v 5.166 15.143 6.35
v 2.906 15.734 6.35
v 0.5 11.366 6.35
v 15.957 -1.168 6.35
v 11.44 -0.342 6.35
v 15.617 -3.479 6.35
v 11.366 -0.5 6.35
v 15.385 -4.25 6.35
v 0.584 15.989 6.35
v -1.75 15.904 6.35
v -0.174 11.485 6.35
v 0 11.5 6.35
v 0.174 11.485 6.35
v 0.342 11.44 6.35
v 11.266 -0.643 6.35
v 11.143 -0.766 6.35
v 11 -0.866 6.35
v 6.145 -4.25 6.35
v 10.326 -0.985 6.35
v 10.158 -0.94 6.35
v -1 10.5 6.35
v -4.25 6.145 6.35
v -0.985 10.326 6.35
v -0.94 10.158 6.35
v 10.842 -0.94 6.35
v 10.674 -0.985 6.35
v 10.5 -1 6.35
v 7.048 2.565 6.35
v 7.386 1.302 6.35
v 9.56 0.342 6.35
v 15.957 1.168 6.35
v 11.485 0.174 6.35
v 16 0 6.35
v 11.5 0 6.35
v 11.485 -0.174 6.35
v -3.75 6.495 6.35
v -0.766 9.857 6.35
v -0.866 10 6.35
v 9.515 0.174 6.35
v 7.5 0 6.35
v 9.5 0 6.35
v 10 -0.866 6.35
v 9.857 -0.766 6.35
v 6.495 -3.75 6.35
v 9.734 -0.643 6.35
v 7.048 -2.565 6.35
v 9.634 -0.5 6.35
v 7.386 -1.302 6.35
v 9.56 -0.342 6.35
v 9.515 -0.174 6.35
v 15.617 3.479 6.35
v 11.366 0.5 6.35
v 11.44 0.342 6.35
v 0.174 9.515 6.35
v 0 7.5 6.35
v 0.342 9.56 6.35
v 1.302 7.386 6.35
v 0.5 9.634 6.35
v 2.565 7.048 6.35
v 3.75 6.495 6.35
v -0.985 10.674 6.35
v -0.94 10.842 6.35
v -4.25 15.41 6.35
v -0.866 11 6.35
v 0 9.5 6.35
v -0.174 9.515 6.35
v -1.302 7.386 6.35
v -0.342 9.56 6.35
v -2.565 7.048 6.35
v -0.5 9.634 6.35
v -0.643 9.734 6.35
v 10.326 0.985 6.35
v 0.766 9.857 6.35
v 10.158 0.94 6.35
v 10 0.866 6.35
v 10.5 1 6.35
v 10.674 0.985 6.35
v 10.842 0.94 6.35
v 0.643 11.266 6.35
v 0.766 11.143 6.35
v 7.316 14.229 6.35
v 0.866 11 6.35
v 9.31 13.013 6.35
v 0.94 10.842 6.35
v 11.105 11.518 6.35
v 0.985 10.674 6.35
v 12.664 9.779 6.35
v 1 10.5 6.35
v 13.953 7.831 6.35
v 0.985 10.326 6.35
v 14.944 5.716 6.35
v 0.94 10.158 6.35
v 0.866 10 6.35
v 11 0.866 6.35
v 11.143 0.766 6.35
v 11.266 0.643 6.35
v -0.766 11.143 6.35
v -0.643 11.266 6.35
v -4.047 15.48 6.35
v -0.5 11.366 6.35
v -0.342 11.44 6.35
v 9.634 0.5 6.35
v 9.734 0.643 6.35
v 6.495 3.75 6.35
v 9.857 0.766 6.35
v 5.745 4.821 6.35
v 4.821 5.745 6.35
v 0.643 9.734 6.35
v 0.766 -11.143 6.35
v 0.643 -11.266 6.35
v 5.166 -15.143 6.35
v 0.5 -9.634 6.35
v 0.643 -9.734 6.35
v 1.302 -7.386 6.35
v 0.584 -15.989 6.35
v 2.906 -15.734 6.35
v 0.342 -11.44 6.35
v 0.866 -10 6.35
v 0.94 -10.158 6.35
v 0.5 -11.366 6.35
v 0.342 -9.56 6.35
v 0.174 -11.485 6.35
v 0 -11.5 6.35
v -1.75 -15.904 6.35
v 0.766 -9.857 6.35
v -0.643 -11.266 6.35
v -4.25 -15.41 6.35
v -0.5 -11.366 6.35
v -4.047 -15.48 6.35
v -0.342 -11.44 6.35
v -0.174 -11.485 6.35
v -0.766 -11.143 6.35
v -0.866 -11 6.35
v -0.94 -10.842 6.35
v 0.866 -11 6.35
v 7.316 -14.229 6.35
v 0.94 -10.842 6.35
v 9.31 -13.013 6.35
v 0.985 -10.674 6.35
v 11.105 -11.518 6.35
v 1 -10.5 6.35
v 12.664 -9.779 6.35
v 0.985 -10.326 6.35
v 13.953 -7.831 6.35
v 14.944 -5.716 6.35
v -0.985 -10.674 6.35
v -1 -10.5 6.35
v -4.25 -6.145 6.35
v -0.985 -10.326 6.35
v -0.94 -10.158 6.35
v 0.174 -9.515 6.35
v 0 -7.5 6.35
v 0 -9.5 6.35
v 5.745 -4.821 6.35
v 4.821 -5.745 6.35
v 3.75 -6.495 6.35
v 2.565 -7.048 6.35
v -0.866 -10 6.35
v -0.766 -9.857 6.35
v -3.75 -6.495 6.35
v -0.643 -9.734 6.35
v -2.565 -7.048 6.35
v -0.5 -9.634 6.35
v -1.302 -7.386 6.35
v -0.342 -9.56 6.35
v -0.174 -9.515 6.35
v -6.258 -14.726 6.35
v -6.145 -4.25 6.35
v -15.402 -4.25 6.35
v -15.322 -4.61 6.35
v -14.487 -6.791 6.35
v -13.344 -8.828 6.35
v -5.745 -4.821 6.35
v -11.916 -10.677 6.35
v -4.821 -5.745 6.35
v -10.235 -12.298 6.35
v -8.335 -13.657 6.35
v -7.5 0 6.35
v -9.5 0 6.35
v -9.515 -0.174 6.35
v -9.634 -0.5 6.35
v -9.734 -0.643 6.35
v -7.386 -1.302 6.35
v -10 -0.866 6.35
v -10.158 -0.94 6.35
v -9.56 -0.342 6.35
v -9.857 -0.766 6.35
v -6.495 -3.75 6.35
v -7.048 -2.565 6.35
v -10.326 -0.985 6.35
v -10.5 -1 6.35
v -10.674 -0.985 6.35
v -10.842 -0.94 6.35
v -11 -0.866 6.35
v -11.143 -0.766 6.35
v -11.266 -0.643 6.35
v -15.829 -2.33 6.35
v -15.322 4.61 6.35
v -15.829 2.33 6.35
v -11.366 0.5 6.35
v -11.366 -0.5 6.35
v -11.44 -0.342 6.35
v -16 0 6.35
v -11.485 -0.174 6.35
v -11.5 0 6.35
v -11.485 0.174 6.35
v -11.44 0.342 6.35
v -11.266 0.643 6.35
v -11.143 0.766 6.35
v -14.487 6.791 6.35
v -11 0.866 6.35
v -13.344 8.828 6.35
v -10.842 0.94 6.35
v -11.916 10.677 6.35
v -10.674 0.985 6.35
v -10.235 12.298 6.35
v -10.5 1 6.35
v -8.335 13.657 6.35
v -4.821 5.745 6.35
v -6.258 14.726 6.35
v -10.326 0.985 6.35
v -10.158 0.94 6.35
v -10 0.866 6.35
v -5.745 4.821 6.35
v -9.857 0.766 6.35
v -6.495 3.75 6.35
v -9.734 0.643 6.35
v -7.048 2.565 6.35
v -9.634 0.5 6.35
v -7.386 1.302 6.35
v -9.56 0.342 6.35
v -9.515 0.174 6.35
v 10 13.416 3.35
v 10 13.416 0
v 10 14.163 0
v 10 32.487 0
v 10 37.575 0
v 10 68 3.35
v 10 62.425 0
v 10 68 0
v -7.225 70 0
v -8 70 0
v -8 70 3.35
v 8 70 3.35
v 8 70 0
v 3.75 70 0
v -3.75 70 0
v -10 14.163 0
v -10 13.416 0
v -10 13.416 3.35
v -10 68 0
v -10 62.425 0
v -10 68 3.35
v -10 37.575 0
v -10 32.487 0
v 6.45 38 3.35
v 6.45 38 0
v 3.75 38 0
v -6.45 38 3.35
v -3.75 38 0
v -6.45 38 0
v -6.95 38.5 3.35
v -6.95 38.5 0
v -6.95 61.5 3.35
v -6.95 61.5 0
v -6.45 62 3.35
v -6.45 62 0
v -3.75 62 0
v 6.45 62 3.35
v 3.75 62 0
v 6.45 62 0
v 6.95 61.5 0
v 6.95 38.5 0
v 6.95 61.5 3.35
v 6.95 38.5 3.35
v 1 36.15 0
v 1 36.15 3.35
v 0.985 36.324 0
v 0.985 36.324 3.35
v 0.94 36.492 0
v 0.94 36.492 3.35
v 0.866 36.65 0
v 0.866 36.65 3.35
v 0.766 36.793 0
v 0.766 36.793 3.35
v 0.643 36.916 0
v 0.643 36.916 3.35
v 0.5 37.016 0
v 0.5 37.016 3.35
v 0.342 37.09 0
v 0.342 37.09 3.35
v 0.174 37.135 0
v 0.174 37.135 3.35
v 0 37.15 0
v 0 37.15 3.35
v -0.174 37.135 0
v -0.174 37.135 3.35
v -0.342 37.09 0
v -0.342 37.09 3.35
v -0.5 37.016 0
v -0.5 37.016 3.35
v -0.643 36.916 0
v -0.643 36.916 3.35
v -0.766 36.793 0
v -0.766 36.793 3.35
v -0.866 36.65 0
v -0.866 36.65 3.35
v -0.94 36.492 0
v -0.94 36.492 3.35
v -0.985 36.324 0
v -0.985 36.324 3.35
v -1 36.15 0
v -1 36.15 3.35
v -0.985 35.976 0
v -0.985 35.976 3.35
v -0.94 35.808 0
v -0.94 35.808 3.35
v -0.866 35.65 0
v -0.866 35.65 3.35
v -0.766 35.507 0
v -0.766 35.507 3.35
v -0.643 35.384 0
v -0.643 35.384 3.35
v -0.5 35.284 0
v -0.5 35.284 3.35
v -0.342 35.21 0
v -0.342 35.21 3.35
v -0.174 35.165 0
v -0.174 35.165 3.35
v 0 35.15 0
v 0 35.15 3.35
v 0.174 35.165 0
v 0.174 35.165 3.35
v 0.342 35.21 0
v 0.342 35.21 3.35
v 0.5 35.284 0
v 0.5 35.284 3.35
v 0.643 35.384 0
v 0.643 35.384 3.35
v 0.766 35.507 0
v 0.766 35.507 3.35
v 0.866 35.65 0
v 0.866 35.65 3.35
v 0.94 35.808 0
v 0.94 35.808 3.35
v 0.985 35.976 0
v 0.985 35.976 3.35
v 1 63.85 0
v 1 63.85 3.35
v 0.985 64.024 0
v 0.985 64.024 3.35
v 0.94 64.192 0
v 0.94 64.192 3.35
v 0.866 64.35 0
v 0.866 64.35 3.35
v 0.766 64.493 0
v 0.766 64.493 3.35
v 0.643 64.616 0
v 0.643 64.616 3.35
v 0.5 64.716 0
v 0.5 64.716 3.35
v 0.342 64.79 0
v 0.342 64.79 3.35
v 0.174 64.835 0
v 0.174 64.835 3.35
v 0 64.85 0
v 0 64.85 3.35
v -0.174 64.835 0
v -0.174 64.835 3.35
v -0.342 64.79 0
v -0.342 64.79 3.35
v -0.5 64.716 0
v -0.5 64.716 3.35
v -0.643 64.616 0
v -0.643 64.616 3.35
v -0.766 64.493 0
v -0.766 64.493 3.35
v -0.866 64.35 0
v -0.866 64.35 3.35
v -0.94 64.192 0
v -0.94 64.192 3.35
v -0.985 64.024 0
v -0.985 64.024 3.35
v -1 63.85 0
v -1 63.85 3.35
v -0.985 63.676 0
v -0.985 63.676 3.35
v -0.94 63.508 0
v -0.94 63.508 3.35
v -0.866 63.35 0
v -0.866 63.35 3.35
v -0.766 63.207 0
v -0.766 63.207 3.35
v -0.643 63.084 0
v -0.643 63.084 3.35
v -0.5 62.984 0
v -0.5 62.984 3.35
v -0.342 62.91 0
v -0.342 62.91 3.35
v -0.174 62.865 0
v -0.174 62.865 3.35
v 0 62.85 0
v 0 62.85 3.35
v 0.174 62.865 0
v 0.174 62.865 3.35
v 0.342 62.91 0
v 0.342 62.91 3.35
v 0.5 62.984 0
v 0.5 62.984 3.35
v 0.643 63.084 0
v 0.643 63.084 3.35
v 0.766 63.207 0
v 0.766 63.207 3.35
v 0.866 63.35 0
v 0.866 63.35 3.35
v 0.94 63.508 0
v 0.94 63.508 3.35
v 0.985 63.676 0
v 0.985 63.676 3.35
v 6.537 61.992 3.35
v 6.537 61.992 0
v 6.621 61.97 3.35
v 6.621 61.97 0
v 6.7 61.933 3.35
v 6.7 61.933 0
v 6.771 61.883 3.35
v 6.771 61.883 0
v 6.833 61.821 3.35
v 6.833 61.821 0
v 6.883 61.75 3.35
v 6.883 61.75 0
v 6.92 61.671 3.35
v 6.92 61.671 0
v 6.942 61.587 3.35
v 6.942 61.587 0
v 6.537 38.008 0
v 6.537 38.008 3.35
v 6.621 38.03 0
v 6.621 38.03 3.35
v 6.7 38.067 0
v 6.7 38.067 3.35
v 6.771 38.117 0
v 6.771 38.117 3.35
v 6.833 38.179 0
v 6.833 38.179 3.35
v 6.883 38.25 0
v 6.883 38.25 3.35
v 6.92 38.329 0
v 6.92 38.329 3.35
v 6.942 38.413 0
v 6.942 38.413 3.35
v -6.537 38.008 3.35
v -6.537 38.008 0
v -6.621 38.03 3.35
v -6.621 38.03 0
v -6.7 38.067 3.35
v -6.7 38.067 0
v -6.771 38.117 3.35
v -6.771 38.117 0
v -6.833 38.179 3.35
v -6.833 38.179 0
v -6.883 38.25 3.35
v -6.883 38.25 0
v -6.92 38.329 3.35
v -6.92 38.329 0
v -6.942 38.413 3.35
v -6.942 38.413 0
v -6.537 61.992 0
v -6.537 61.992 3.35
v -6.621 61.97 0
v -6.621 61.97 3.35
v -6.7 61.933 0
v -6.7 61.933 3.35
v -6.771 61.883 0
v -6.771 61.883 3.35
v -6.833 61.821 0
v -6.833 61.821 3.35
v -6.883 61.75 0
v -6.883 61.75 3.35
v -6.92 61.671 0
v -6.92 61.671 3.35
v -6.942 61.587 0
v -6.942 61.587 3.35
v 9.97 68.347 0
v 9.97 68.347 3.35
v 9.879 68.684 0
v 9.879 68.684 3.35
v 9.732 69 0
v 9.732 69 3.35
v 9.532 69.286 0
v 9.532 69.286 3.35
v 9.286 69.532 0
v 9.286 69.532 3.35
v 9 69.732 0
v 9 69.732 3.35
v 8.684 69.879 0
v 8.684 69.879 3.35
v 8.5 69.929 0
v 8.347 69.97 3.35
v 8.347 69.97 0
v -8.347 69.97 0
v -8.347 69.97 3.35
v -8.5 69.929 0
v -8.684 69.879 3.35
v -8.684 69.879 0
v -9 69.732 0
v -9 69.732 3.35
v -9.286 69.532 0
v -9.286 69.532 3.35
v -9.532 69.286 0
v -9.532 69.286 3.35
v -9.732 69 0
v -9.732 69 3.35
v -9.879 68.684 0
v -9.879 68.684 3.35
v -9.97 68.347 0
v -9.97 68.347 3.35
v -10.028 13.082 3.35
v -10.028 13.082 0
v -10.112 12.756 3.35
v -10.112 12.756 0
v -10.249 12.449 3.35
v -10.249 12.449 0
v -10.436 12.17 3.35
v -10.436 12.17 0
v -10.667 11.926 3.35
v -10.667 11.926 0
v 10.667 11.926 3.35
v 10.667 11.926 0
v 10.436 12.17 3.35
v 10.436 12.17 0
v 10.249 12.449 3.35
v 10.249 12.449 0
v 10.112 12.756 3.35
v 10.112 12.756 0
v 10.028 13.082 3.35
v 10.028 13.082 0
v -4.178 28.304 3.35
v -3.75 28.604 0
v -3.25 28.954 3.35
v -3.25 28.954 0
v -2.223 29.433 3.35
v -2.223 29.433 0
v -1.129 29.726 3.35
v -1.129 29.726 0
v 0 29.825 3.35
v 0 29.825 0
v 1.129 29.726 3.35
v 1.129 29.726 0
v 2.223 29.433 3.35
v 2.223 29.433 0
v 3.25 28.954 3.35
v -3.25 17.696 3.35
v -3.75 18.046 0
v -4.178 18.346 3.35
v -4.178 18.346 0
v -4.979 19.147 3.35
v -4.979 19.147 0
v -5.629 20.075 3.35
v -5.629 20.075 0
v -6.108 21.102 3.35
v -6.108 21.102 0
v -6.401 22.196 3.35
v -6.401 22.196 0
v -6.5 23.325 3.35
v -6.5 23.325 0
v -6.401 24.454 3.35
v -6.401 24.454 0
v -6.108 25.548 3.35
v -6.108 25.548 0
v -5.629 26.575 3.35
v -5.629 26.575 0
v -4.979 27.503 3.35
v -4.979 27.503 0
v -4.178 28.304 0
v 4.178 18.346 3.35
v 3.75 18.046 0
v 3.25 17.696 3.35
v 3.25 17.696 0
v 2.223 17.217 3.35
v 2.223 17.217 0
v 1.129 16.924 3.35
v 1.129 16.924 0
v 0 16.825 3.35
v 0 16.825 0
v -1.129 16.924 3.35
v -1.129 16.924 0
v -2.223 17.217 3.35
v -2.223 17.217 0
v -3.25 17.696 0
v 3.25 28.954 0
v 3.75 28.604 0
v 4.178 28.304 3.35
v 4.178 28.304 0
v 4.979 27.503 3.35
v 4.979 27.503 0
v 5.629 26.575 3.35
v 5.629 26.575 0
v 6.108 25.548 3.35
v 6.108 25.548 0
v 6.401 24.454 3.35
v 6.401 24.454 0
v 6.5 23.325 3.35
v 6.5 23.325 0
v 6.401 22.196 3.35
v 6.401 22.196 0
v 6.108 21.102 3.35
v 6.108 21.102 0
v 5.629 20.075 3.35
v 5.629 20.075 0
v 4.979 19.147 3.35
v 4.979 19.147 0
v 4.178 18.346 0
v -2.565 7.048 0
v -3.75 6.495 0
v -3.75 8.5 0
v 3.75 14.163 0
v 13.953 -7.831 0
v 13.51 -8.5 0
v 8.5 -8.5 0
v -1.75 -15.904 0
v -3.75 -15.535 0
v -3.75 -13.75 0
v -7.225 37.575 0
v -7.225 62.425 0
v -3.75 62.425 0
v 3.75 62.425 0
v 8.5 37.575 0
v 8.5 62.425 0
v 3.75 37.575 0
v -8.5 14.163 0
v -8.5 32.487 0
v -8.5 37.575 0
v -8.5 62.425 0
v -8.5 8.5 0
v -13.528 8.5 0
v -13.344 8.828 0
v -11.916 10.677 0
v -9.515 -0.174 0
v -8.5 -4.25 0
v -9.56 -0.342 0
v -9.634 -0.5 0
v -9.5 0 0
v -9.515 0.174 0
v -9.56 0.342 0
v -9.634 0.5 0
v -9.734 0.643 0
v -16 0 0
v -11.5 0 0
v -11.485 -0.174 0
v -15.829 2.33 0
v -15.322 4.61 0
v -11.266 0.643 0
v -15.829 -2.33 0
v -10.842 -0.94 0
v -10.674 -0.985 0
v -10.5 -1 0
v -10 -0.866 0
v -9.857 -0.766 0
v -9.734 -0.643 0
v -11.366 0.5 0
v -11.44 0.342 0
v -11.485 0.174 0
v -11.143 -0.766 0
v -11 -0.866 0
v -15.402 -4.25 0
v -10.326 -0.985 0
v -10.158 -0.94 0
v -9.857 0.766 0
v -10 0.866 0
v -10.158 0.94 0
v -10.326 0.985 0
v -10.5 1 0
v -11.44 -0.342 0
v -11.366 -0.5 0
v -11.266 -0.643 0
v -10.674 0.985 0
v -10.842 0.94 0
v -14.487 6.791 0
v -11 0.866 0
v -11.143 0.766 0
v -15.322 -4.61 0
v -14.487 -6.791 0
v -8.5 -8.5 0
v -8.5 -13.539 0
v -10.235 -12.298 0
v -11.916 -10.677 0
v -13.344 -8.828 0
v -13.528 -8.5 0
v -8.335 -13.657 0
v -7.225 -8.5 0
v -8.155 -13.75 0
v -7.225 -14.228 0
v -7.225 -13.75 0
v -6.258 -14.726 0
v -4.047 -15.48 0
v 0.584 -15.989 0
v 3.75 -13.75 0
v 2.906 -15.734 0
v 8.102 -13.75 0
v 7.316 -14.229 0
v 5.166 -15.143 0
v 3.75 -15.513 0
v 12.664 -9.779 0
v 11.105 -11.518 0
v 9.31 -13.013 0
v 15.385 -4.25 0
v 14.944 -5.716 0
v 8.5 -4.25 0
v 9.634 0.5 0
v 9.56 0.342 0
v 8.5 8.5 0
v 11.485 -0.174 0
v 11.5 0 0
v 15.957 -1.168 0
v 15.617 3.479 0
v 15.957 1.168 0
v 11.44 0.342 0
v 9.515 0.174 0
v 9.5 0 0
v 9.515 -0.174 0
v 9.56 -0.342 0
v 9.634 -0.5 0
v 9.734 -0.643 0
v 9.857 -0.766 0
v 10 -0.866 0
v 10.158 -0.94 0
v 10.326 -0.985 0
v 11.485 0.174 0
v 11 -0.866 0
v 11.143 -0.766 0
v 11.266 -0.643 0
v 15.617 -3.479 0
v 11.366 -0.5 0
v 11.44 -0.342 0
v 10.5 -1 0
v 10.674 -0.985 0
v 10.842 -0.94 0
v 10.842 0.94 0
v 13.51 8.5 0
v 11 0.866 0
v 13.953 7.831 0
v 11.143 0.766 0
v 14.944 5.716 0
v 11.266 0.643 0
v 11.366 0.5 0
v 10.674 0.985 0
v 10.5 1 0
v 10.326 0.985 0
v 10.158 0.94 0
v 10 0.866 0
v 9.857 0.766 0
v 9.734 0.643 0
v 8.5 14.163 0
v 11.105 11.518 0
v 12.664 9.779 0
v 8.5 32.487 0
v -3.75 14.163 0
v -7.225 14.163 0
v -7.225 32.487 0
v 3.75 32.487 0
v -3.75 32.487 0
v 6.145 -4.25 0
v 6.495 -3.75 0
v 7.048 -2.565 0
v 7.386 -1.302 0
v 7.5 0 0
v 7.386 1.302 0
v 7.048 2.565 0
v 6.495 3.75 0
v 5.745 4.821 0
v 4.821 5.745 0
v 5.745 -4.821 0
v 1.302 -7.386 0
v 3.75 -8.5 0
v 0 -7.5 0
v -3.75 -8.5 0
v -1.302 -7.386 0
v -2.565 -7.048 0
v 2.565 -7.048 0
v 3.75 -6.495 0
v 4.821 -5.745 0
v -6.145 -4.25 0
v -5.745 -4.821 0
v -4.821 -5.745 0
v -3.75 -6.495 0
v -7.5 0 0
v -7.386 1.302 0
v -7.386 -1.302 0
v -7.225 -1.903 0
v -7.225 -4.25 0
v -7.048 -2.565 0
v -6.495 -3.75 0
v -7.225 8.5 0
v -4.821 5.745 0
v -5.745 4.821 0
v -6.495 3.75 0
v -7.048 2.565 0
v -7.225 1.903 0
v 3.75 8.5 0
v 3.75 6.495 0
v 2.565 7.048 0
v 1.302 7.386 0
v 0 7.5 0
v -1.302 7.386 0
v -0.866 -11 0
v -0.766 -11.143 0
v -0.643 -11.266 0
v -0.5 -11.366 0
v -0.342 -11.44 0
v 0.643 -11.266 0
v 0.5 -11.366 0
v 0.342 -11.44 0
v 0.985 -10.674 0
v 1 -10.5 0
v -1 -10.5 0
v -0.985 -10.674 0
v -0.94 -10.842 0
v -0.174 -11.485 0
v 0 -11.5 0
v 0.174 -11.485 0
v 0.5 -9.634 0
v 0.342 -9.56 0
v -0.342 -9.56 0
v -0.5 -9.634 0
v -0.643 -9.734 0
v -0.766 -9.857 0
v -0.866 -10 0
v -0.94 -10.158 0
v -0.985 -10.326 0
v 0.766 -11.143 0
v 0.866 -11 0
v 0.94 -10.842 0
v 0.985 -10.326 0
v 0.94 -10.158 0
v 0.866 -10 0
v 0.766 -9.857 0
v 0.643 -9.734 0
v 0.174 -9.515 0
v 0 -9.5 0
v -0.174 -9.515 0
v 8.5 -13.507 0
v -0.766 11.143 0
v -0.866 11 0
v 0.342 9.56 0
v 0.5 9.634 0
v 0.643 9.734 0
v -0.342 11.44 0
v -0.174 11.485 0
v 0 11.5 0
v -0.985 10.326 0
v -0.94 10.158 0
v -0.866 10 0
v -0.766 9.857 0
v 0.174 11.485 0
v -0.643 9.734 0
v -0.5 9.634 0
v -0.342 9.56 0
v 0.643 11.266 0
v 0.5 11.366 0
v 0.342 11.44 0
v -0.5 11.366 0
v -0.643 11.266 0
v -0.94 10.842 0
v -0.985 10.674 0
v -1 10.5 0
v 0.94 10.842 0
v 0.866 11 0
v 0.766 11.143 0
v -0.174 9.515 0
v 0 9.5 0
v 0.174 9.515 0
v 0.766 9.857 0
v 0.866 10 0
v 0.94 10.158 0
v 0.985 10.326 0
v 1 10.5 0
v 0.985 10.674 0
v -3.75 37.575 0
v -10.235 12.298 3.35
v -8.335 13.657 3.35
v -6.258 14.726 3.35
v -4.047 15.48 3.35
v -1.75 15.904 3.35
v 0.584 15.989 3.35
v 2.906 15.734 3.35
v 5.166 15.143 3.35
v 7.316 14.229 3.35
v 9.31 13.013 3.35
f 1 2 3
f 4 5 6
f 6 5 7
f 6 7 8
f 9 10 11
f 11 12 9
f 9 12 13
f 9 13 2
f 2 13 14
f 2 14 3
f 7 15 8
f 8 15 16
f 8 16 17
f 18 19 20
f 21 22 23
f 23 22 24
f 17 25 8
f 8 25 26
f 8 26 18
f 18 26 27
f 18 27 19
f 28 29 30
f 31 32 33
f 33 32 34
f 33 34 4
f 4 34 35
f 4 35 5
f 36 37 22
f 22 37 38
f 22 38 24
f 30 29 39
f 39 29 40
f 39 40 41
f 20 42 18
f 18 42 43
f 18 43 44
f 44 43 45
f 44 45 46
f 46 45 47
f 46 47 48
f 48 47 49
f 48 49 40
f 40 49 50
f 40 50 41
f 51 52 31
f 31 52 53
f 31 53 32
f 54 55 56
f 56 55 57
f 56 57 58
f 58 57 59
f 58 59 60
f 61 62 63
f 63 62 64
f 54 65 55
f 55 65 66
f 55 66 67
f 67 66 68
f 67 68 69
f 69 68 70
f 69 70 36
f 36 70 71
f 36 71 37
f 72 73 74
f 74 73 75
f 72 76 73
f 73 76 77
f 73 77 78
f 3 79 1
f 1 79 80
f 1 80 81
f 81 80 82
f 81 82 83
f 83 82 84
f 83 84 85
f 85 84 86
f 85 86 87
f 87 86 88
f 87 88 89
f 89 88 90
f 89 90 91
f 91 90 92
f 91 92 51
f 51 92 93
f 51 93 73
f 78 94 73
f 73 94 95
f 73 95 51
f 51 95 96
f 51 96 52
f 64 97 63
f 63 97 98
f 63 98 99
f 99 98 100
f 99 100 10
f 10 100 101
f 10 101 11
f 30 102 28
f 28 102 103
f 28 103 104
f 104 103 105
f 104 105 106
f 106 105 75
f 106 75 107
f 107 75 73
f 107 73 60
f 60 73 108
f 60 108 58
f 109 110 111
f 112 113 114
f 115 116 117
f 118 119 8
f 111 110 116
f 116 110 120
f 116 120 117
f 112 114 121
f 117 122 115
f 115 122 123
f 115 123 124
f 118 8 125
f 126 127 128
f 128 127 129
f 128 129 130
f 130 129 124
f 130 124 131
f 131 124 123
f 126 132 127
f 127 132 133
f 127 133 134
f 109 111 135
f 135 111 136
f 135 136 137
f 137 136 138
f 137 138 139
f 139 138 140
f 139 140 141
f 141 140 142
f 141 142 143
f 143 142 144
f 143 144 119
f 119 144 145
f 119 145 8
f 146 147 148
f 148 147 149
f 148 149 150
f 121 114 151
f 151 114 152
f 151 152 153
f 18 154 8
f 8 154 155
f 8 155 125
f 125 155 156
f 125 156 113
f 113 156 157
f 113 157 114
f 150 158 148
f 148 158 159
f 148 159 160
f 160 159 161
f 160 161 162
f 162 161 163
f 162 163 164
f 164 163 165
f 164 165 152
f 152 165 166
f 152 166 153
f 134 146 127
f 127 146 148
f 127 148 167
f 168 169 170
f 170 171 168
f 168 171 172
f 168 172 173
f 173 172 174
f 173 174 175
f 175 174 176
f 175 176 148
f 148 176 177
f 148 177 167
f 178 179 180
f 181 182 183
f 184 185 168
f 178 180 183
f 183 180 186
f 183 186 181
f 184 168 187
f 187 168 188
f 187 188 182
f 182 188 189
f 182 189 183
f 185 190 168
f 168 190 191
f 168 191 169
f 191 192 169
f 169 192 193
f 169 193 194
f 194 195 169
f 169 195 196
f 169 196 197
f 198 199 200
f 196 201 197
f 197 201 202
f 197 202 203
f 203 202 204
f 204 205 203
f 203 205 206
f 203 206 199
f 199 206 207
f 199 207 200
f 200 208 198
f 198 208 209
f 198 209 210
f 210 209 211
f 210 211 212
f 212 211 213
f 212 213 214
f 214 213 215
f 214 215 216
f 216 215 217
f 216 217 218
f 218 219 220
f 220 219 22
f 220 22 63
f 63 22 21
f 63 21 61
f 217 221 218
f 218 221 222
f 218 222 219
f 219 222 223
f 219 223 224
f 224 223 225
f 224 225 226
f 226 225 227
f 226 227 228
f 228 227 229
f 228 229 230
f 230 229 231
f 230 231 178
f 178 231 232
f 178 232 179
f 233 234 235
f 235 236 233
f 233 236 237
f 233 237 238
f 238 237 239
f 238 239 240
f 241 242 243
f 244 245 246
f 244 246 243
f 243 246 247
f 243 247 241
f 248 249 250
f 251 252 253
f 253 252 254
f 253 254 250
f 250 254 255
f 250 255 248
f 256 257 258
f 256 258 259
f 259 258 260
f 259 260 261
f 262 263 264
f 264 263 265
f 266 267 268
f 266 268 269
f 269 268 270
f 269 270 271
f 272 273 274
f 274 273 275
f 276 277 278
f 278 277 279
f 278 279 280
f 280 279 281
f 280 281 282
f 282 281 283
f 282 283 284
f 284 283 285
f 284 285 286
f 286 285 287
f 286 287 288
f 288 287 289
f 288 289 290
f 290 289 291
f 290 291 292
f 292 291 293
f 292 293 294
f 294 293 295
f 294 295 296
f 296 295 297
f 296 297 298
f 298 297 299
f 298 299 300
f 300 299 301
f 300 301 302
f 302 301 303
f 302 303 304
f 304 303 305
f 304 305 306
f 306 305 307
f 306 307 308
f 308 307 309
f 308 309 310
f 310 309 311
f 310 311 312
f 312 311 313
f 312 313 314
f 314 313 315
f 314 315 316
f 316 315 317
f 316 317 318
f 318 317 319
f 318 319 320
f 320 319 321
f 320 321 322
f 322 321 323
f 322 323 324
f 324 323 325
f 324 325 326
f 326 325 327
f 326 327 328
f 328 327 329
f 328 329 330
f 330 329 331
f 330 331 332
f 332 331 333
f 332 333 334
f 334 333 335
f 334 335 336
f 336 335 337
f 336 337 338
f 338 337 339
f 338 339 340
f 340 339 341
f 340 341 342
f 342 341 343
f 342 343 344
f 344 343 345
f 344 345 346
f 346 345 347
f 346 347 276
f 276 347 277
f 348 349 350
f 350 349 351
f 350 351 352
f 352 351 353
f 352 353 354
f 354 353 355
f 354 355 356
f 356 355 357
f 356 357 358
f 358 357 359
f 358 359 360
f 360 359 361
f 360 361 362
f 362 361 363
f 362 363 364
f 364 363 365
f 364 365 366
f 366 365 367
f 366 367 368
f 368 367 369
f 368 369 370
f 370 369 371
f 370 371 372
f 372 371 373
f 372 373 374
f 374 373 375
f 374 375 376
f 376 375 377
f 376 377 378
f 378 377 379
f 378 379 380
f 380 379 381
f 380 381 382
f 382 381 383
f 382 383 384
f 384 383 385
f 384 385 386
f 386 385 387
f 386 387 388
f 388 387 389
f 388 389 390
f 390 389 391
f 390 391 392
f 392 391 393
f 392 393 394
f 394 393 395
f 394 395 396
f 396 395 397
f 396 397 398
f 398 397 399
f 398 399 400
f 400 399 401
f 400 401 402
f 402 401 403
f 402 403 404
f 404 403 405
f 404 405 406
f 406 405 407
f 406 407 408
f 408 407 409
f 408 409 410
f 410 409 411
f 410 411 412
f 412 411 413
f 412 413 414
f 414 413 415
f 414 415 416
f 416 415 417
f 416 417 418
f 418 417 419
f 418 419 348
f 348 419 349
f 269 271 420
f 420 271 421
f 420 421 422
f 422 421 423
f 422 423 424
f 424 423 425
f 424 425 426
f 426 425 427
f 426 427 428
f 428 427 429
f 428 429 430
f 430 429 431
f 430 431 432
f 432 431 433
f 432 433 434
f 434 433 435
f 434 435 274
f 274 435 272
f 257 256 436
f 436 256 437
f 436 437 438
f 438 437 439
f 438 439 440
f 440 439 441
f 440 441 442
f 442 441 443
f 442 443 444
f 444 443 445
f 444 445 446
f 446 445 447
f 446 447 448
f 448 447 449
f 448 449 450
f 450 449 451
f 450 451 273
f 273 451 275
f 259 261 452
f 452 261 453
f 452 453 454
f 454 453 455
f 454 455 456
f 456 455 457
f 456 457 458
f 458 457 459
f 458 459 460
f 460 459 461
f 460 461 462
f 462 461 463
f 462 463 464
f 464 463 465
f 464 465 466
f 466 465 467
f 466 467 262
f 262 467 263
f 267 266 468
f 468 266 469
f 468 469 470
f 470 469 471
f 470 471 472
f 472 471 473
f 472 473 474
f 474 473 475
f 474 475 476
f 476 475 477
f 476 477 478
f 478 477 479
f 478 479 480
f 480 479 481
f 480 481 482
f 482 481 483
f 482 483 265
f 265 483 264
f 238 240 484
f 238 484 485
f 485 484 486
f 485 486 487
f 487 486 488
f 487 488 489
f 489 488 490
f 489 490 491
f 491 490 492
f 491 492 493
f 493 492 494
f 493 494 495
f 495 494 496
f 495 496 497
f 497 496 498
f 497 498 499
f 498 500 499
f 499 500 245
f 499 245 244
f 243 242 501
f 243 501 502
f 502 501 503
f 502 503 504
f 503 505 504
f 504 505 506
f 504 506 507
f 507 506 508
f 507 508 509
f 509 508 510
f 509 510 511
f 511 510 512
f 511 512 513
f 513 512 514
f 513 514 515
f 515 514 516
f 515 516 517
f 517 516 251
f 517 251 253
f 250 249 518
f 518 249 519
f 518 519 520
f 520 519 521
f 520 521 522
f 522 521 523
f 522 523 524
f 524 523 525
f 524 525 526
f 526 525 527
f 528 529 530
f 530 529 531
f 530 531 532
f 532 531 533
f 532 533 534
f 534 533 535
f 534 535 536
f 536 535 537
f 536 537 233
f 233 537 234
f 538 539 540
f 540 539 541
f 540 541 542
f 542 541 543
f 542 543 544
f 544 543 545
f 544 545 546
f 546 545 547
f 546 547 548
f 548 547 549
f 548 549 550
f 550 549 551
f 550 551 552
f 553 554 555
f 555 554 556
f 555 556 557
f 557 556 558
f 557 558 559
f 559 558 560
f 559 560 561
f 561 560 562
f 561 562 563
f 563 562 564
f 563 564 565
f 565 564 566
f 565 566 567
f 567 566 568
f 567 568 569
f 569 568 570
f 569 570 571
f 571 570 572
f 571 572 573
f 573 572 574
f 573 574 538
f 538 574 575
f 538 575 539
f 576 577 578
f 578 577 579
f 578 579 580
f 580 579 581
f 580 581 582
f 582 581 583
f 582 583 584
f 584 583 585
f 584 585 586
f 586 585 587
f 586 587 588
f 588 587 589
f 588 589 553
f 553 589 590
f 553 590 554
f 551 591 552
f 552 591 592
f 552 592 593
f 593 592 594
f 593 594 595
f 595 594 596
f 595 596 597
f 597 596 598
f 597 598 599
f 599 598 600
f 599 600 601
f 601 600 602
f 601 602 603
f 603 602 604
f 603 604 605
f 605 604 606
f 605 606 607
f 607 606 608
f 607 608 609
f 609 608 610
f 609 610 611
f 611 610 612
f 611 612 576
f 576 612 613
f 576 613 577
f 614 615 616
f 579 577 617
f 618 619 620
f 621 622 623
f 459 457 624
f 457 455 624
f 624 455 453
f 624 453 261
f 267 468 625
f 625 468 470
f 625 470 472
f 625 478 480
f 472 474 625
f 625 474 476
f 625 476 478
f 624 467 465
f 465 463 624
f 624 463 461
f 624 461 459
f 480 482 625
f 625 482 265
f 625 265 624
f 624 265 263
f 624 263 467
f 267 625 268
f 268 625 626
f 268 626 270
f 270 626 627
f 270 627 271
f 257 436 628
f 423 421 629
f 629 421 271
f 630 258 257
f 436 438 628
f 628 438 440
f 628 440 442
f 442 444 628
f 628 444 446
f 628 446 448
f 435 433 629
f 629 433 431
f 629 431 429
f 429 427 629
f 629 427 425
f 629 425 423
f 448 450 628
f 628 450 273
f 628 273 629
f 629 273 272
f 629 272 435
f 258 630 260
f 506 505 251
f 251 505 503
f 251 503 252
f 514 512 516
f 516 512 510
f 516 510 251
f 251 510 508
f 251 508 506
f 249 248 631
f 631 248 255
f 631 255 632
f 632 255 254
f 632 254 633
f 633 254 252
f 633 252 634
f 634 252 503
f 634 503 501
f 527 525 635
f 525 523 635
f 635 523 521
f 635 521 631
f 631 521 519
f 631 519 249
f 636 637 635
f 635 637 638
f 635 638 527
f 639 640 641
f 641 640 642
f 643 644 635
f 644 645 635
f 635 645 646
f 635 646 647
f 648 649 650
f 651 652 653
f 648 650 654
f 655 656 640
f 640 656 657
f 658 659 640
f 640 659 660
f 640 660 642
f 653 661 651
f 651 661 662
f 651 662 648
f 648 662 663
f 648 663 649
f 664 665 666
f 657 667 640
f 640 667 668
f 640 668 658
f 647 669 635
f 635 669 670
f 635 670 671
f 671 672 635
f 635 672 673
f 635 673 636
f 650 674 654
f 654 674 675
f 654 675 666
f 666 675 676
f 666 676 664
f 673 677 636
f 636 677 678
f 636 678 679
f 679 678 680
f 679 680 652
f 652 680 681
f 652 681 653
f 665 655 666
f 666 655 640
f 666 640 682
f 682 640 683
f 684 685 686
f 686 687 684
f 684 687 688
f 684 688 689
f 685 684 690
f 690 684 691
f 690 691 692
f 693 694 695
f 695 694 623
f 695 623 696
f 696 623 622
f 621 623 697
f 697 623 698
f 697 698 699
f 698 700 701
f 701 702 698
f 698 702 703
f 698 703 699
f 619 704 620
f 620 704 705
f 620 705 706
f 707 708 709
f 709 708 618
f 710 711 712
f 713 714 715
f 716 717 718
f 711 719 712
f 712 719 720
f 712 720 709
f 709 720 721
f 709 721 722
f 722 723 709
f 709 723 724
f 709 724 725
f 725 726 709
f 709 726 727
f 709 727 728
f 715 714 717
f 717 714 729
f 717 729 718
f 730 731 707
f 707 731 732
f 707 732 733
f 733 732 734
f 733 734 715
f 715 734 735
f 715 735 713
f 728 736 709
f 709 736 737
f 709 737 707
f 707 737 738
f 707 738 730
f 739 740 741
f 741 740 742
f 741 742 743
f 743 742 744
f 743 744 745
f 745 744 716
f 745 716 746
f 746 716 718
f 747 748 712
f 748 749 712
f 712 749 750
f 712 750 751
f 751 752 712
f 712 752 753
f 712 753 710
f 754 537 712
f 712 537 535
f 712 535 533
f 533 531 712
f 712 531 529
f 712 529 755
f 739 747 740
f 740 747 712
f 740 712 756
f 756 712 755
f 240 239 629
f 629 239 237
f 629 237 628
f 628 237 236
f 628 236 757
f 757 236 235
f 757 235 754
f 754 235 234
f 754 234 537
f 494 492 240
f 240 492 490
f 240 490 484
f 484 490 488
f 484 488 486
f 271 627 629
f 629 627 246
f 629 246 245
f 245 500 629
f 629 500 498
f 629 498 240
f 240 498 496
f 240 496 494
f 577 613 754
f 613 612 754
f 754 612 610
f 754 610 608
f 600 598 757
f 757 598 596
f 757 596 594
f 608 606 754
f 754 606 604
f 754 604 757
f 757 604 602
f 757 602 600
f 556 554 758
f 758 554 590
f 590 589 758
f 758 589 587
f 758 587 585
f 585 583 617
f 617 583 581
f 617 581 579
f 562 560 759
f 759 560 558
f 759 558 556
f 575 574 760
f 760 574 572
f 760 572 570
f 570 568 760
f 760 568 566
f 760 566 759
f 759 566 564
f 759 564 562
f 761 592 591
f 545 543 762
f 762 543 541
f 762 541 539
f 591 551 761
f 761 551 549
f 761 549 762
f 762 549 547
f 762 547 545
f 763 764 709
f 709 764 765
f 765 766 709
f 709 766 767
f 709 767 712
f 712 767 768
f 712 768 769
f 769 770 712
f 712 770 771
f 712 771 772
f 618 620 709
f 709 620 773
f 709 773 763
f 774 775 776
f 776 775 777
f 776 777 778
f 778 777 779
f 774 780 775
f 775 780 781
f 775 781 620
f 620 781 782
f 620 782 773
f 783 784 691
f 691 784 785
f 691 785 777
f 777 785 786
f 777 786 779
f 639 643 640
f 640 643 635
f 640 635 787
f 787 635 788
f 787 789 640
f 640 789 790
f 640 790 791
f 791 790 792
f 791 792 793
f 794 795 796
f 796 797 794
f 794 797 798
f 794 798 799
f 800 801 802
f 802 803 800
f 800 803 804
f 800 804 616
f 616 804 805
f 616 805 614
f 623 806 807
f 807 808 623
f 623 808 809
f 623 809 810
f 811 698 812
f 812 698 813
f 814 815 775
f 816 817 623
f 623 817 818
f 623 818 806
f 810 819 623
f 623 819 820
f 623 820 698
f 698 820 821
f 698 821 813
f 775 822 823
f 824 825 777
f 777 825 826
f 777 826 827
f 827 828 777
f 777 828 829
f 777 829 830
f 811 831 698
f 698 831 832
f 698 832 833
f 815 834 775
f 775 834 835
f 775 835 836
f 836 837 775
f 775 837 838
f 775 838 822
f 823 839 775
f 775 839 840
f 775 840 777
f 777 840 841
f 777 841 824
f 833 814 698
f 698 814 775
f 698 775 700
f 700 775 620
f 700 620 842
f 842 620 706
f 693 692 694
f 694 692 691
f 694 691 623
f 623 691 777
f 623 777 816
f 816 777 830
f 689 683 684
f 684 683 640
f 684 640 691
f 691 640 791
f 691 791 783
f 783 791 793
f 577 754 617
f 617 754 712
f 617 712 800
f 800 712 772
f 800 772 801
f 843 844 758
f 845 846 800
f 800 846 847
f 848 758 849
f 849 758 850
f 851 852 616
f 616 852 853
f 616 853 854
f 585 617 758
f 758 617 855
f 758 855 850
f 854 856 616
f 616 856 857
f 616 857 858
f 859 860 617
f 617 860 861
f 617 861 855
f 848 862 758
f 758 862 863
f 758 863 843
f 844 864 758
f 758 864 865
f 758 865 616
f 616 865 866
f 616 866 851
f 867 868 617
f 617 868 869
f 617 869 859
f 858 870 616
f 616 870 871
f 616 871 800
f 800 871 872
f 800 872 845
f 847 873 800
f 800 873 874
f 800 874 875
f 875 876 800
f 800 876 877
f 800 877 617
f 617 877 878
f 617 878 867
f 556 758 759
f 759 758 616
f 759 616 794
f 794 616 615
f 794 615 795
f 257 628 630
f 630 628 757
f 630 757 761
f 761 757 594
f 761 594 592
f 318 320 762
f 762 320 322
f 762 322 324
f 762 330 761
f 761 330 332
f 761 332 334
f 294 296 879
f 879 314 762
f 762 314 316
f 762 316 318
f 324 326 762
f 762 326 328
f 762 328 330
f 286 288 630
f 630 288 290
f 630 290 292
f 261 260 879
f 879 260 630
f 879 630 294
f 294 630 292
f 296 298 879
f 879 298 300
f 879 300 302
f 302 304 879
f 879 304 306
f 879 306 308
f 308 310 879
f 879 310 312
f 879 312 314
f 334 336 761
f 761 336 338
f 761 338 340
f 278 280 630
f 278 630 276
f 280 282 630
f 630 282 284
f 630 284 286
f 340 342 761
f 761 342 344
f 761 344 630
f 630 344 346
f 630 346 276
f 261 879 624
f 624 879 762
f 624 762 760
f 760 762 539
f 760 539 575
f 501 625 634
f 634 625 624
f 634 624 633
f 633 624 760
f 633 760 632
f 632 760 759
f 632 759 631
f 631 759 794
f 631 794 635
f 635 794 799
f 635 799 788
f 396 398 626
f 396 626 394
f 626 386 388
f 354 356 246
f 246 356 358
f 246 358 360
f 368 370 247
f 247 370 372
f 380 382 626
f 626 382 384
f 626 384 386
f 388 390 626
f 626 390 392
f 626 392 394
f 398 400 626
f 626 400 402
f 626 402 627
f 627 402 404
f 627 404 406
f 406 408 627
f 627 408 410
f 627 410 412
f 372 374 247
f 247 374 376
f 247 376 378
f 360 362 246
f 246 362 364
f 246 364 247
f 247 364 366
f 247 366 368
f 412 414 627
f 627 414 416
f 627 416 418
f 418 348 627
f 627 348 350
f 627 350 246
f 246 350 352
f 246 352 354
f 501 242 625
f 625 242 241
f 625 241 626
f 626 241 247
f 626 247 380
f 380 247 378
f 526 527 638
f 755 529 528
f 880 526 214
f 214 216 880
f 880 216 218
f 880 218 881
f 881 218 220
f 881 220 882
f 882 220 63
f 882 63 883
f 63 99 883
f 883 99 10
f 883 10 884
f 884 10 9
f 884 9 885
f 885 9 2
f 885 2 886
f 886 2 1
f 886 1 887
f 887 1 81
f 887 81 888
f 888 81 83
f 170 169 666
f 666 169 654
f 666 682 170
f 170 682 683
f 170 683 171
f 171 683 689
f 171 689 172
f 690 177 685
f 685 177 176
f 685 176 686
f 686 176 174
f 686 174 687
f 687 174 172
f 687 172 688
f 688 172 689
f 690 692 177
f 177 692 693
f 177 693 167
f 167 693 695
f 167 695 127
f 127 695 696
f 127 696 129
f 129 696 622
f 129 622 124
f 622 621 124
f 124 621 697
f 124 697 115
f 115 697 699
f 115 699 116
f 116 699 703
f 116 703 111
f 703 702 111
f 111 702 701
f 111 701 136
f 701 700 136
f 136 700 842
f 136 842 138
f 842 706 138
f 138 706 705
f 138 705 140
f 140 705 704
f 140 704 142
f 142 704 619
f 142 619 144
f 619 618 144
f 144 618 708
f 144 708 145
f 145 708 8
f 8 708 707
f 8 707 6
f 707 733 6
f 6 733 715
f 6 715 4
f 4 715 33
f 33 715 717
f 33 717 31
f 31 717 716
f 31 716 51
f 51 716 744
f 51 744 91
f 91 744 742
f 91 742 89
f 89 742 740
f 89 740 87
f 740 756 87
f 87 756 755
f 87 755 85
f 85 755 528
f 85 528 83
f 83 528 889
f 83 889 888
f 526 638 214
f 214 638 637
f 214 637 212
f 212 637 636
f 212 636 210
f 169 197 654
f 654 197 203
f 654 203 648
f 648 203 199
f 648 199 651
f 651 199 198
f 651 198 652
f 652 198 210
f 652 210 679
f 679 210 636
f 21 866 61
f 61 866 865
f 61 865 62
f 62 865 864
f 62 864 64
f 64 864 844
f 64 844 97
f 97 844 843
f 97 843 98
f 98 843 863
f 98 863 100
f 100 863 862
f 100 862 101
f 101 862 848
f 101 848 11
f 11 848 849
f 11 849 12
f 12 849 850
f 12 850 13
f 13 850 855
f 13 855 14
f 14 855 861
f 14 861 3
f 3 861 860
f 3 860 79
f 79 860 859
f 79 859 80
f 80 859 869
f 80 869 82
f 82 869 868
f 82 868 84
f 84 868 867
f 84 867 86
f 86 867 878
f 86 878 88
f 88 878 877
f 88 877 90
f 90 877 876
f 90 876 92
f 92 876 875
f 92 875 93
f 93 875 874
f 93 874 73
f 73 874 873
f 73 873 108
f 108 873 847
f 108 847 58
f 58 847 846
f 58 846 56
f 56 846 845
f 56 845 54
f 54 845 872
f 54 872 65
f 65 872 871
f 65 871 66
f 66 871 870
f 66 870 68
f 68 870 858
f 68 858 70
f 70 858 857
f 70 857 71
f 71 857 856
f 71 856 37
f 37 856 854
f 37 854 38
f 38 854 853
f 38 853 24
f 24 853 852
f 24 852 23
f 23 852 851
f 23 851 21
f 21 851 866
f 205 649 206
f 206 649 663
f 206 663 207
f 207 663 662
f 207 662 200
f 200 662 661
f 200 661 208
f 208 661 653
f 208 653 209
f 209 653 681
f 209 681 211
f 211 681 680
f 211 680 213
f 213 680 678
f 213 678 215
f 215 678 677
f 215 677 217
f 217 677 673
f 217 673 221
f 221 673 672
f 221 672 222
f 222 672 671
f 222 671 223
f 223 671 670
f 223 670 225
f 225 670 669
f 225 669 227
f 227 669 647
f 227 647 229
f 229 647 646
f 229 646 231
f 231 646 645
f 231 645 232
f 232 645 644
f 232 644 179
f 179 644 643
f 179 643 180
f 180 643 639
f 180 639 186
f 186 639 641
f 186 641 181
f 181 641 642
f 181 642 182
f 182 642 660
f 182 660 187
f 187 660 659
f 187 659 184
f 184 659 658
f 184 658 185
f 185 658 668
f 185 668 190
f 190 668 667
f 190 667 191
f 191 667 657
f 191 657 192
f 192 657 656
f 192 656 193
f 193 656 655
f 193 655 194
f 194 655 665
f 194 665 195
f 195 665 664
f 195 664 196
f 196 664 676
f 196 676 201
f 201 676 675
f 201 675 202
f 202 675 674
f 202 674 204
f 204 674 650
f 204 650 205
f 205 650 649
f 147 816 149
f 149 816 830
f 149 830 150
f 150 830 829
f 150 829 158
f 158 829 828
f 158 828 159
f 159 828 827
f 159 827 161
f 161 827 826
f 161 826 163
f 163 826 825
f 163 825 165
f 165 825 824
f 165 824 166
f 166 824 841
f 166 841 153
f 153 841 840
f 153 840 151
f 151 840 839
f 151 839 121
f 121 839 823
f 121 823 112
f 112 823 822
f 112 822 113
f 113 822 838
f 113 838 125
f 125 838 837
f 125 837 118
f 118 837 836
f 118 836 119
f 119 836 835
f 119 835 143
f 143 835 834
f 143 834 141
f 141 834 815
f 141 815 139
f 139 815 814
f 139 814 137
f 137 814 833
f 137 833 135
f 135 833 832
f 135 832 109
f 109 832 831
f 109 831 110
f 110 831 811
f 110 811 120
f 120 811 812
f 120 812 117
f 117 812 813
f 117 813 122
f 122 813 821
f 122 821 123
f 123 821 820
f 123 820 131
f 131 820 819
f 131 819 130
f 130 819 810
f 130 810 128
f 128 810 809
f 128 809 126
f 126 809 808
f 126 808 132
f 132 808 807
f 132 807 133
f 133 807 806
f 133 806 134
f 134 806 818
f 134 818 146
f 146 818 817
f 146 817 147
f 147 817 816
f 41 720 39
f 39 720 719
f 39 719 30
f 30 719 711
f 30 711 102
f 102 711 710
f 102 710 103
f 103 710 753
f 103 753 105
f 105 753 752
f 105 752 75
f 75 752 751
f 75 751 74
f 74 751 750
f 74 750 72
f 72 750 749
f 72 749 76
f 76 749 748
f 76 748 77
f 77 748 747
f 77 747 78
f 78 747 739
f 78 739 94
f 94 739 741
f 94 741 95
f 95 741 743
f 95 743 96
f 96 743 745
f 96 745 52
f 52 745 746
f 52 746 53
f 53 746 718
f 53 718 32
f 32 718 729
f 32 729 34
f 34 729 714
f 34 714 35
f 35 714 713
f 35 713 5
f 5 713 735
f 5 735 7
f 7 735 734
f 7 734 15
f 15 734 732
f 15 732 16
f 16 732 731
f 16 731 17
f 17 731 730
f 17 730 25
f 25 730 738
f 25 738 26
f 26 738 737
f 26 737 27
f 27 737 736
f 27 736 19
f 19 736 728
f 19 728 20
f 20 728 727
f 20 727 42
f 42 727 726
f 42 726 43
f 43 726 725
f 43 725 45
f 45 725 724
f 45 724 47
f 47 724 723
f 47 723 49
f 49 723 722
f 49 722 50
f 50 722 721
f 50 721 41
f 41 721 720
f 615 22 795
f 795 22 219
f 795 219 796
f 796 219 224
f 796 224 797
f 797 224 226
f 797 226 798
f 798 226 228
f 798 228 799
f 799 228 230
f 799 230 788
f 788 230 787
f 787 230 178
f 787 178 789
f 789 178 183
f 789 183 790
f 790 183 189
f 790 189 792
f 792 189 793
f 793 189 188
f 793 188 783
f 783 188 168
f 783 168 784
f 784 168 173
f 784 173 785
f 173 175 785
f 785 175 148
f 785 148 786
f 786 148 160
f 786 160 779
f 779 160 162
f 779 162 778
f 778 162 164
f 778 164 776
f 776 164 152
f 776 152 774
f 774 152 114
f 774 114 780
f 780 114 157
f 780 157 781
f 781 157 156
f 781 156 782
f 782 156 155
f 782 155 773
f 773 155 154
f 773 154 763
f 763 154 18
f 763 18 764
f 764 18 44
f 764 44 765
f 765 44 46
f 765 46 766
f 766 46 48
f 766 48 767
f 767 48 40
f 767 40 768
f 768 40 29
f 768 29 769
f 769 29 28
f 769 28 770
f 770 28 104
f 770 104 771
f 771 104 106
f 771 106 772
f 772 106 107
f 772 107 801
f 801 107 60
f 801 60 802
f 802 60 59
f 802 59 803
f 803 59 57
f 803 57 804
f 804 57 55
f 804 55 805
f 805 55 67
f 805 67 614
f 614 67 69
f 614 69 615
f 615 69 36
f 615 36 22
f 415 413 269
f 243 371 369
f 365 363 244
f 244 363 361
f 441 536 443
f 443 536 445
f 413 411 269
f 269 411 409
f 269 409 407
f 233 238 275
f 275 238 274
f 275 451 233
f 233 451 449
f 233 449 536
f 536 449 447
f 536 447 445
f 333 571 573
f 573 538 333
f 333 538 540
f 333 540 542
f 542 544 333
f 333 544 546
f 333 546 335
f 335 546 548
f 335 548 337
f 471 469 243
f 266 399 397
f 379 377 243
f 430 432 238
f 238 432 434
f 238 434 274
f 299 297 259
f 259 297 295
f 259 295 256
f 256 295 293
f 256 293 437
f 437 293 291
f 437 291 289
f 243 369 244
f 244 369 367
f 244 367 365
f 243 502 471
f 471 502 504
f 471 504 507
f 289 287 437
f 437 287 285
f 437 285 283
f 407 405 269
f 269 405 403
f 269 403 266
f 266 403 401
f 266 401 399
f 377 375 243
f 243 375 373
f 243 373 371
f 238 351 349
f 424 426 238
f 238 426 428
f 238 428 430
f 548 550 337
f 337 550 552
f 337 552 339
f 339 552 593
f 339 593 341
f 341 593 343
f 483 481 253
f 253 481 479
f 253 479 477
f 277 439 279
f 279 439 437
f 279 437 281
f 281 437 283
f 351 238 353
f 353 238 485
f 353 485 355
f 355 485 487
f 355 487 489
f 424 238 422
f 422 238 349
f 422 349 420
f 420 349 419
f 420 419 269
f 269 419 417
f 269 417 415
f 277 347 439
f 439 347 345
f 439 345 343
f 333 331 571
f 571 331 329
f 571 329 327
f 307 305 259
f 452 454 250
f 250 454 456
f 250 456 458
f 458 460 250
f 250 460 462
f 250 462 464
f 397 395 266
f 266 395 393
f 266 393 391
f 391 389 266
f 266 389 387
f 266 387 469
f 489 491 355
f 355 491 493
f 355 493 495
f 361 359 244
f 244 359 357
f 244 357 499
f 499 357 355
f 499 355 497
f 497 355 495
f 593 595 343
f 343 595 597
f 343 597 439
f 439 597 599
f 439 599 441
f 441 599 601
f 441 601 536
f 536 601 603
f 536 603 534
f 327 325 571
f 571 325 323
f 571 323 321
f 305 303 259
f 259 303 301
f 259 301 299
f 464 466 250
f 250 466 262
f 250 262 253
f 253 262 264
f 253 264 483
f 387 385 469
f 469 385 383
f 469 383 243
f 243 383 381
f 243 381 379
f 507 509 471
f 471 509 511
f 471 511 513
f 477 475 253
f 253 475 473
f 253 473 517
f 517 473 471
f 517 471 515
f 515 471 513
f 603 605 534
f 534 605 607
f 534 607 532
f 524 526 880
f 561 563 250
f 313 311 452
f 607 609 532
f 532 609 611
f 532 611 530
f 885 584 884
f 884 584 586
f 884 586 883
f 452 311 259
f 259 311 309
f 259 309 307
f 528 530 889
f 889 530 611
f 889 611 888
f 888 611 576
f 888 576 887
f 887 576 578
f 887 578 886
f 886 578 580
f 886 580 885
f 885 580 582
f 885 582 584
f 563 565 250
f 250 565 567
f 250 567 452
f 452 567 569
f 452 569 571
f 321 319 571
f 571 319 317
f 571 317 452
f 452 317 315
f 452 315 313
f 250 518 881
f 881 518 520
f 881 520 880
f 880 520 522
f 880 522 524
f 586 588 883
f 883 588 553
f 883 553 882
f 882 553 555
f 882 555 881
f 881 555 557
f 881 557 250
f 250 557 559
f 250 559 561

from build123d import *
from build123d.topology import SkipClean

# Parameters (mm, degrees)
SKETCH1_R           = 1
BOSS_EXTRUDE1_DEPTH = 6.35
SKETCH2_R           = 1
SKETCH2_W           = 13.9
SKETCH2_H           = 24
CUT_EXTRUDE1_DEPTH  = 73.085522125
FILLET1_R           = 0.5
FILLET2_R           = 2
SKETCH3_R           = 6.5
CUT_EXTRUDE2_DEPTH  = 6.35
SKETCH4_R           = 7.5
CUT_EXTRUDE3_DEPTH  = 73.085522125
SKETCH5_R           = 6.5
SKETCH5_R_2         = 1
CUT_EXTRUDE4_DEPTH  = 3


with BuildPart() as part:
    # Sketch1 → Boss-Extrude1 (new body)
    with BuildSketch(Plane.XY):
        with BuildLine():
            Line((-10, 12.489995997), (-10, 70))
            Line((-10, 70), (10, 70))
            Line((10, 70), (10, 12.489995997))
            ThreePointArc((10, 12.489995997), (0, -16), (-10, 12.489995997))
        make_face()
        with Locations((-10.5, 0)):
            Circle(SKETCH1_R, mode=Mode.SUBTRACT)
        with Locations((0, 10.5)):
            Circle(SKETCH1_R, mode=Mode.SUBTRACT)
        with Locations((10.5, 0)):
            Circle(SKETCH1_R, mode=Mode.SUBTRACT)
        with Locations((0, -10.5)):
            Circle(SKETCH1_R, mode=Mode.SUBTRACT)
    extrude(amount=BOSS_EXTRUDE1_DEPTH)

    # Sketch2 → Cut-Extrude1 (cut, through all)
    with BuildSketch(Plane.XY.offset(6.35)):
        with Locations((0, 63.85)):
            Circle(SKETCH2_R)
        with Locations((0, 36.15)):
            Circle(SKETCH2_R)
        with Locations((0, 50)):
            Rectangle(SKETCH2_W, SKETCH2_H)
    extrude(amount=-CUT_EXTRUDE1_DEPTH, mode=Mode.SUBTRACT)

    # Fillet1
    fillet1_edges = [part.edges().sort_by_distance(p)[0] for p in [
        (6.95, 38, 3.175),
        (-6.95, 38, 3.175),
        (-6.95, 62, 3.175),
        (6.95, 62, 3.175),
    ]]
    fillet(fillet1_edges, radius=FILLET1_R)

    # Fillet2
    fillet2_edges = [part.edges().sort_by_distance(p)[0] for p in [
        (-10, 12.489995997, 3.175),
        (-10, 70, 3.175),
        (10, 70, 3.175),
        (10, 12.489995997, 3.175),
    ]]
    fillet(fillet2_edges, radius=FILLET2_R)

    # Sketch3 → Cut-Extrude2 (cut)
    with BuildSketch(Plane.XY.offset(6.35)):
        with Locations((0, 23.325)):
            Circle(SKETCH3_R)
    extrude(amount=-CUT_EXTRUDE2_DEPTH, mode=Mode.SUBTRACT)

    # Sketch4 → Cut-Extrude3 (cut, through all)
    with BuildSketch(Plane.XY.offset(6.35)):
        Circle(SKETCH4_R)
    extrude(amount=-CUT_EXTRUDE3_DEPTH, mode=Mode.SUBTRACT)

    # Sketch5 → Cut-Extrude4 (cut)
    with SkipClean():  # the faces are left unmerged after this step: merging them gives an invalid solid
        with BuildSketch(Plane.XY.offset(6.35)):
            with BuildLine():
                ThreePointArc((-10.666666667, 11.92569588), (0, 16), (10.666666667, 11.92569588))
                ThreePointArc((10.666666667, 11.92569588), (10.174258142, 12.599911284), (10, 13.416407865))
                Line((10, 13.416407865), (10, 68))
                ThreePointArc((10, 68), (9.414213562, 69.414213562), (8, 70))
                Line((8, 70), (-8, 70))
                ThreePointArc((-8, 70), (-9.414213562, 69.414213562), (-10, 68))
                Line((-10, 68), (-10, 13.416407865))
                ThreePointArc((-10, 13.416407865), (-10.174258142, 12.599911284), (-10.666666667, 11.92569588))
            make_face()
            with Locations((0, 23.325)):
                Circle(SKETCH5_R, mode=Mode.SUBTRACT)
            with Locations((0, 63.85)):
                Circle(SKETCH5_R_2, mode=Mode.SUBTRACT)
            with Locations((0, 36.15)):
                Circle(SKETCH5_R_2, mode=Mode.SUBTRACT)
            with BuildLine():
                ThreePointArc((6.45, 62), (6.803553391, 61.853553391), (6.95, 61.5))
                Line((6.95, 61.5), (6.95, 38.5))
                ThreePointArc((6.95, 38.5), (6.803553391, 38.146446609), (6.45, 38))
                Line((6.45, 38), (-6.45, 38))
                ThreePointArc((-6.45, 38), (-6.803553391, 38.146446609), (-6.95, 38.5))
                Line((-6.95, 38.5), (-6.95, 61.5))
                ThreePointArc((-6.95, 61.5), (-6.803553391, 61.853553391), (-6.45, 62))
                Line((-6.45, 62), (6.45, 62))
            make_face(mode=Mode.SUBTRACT)
        extrude(amount=-CUT_EXTRUDE4_DEPTH, mode=Mode.SUBTRACT)


solid = part.part
